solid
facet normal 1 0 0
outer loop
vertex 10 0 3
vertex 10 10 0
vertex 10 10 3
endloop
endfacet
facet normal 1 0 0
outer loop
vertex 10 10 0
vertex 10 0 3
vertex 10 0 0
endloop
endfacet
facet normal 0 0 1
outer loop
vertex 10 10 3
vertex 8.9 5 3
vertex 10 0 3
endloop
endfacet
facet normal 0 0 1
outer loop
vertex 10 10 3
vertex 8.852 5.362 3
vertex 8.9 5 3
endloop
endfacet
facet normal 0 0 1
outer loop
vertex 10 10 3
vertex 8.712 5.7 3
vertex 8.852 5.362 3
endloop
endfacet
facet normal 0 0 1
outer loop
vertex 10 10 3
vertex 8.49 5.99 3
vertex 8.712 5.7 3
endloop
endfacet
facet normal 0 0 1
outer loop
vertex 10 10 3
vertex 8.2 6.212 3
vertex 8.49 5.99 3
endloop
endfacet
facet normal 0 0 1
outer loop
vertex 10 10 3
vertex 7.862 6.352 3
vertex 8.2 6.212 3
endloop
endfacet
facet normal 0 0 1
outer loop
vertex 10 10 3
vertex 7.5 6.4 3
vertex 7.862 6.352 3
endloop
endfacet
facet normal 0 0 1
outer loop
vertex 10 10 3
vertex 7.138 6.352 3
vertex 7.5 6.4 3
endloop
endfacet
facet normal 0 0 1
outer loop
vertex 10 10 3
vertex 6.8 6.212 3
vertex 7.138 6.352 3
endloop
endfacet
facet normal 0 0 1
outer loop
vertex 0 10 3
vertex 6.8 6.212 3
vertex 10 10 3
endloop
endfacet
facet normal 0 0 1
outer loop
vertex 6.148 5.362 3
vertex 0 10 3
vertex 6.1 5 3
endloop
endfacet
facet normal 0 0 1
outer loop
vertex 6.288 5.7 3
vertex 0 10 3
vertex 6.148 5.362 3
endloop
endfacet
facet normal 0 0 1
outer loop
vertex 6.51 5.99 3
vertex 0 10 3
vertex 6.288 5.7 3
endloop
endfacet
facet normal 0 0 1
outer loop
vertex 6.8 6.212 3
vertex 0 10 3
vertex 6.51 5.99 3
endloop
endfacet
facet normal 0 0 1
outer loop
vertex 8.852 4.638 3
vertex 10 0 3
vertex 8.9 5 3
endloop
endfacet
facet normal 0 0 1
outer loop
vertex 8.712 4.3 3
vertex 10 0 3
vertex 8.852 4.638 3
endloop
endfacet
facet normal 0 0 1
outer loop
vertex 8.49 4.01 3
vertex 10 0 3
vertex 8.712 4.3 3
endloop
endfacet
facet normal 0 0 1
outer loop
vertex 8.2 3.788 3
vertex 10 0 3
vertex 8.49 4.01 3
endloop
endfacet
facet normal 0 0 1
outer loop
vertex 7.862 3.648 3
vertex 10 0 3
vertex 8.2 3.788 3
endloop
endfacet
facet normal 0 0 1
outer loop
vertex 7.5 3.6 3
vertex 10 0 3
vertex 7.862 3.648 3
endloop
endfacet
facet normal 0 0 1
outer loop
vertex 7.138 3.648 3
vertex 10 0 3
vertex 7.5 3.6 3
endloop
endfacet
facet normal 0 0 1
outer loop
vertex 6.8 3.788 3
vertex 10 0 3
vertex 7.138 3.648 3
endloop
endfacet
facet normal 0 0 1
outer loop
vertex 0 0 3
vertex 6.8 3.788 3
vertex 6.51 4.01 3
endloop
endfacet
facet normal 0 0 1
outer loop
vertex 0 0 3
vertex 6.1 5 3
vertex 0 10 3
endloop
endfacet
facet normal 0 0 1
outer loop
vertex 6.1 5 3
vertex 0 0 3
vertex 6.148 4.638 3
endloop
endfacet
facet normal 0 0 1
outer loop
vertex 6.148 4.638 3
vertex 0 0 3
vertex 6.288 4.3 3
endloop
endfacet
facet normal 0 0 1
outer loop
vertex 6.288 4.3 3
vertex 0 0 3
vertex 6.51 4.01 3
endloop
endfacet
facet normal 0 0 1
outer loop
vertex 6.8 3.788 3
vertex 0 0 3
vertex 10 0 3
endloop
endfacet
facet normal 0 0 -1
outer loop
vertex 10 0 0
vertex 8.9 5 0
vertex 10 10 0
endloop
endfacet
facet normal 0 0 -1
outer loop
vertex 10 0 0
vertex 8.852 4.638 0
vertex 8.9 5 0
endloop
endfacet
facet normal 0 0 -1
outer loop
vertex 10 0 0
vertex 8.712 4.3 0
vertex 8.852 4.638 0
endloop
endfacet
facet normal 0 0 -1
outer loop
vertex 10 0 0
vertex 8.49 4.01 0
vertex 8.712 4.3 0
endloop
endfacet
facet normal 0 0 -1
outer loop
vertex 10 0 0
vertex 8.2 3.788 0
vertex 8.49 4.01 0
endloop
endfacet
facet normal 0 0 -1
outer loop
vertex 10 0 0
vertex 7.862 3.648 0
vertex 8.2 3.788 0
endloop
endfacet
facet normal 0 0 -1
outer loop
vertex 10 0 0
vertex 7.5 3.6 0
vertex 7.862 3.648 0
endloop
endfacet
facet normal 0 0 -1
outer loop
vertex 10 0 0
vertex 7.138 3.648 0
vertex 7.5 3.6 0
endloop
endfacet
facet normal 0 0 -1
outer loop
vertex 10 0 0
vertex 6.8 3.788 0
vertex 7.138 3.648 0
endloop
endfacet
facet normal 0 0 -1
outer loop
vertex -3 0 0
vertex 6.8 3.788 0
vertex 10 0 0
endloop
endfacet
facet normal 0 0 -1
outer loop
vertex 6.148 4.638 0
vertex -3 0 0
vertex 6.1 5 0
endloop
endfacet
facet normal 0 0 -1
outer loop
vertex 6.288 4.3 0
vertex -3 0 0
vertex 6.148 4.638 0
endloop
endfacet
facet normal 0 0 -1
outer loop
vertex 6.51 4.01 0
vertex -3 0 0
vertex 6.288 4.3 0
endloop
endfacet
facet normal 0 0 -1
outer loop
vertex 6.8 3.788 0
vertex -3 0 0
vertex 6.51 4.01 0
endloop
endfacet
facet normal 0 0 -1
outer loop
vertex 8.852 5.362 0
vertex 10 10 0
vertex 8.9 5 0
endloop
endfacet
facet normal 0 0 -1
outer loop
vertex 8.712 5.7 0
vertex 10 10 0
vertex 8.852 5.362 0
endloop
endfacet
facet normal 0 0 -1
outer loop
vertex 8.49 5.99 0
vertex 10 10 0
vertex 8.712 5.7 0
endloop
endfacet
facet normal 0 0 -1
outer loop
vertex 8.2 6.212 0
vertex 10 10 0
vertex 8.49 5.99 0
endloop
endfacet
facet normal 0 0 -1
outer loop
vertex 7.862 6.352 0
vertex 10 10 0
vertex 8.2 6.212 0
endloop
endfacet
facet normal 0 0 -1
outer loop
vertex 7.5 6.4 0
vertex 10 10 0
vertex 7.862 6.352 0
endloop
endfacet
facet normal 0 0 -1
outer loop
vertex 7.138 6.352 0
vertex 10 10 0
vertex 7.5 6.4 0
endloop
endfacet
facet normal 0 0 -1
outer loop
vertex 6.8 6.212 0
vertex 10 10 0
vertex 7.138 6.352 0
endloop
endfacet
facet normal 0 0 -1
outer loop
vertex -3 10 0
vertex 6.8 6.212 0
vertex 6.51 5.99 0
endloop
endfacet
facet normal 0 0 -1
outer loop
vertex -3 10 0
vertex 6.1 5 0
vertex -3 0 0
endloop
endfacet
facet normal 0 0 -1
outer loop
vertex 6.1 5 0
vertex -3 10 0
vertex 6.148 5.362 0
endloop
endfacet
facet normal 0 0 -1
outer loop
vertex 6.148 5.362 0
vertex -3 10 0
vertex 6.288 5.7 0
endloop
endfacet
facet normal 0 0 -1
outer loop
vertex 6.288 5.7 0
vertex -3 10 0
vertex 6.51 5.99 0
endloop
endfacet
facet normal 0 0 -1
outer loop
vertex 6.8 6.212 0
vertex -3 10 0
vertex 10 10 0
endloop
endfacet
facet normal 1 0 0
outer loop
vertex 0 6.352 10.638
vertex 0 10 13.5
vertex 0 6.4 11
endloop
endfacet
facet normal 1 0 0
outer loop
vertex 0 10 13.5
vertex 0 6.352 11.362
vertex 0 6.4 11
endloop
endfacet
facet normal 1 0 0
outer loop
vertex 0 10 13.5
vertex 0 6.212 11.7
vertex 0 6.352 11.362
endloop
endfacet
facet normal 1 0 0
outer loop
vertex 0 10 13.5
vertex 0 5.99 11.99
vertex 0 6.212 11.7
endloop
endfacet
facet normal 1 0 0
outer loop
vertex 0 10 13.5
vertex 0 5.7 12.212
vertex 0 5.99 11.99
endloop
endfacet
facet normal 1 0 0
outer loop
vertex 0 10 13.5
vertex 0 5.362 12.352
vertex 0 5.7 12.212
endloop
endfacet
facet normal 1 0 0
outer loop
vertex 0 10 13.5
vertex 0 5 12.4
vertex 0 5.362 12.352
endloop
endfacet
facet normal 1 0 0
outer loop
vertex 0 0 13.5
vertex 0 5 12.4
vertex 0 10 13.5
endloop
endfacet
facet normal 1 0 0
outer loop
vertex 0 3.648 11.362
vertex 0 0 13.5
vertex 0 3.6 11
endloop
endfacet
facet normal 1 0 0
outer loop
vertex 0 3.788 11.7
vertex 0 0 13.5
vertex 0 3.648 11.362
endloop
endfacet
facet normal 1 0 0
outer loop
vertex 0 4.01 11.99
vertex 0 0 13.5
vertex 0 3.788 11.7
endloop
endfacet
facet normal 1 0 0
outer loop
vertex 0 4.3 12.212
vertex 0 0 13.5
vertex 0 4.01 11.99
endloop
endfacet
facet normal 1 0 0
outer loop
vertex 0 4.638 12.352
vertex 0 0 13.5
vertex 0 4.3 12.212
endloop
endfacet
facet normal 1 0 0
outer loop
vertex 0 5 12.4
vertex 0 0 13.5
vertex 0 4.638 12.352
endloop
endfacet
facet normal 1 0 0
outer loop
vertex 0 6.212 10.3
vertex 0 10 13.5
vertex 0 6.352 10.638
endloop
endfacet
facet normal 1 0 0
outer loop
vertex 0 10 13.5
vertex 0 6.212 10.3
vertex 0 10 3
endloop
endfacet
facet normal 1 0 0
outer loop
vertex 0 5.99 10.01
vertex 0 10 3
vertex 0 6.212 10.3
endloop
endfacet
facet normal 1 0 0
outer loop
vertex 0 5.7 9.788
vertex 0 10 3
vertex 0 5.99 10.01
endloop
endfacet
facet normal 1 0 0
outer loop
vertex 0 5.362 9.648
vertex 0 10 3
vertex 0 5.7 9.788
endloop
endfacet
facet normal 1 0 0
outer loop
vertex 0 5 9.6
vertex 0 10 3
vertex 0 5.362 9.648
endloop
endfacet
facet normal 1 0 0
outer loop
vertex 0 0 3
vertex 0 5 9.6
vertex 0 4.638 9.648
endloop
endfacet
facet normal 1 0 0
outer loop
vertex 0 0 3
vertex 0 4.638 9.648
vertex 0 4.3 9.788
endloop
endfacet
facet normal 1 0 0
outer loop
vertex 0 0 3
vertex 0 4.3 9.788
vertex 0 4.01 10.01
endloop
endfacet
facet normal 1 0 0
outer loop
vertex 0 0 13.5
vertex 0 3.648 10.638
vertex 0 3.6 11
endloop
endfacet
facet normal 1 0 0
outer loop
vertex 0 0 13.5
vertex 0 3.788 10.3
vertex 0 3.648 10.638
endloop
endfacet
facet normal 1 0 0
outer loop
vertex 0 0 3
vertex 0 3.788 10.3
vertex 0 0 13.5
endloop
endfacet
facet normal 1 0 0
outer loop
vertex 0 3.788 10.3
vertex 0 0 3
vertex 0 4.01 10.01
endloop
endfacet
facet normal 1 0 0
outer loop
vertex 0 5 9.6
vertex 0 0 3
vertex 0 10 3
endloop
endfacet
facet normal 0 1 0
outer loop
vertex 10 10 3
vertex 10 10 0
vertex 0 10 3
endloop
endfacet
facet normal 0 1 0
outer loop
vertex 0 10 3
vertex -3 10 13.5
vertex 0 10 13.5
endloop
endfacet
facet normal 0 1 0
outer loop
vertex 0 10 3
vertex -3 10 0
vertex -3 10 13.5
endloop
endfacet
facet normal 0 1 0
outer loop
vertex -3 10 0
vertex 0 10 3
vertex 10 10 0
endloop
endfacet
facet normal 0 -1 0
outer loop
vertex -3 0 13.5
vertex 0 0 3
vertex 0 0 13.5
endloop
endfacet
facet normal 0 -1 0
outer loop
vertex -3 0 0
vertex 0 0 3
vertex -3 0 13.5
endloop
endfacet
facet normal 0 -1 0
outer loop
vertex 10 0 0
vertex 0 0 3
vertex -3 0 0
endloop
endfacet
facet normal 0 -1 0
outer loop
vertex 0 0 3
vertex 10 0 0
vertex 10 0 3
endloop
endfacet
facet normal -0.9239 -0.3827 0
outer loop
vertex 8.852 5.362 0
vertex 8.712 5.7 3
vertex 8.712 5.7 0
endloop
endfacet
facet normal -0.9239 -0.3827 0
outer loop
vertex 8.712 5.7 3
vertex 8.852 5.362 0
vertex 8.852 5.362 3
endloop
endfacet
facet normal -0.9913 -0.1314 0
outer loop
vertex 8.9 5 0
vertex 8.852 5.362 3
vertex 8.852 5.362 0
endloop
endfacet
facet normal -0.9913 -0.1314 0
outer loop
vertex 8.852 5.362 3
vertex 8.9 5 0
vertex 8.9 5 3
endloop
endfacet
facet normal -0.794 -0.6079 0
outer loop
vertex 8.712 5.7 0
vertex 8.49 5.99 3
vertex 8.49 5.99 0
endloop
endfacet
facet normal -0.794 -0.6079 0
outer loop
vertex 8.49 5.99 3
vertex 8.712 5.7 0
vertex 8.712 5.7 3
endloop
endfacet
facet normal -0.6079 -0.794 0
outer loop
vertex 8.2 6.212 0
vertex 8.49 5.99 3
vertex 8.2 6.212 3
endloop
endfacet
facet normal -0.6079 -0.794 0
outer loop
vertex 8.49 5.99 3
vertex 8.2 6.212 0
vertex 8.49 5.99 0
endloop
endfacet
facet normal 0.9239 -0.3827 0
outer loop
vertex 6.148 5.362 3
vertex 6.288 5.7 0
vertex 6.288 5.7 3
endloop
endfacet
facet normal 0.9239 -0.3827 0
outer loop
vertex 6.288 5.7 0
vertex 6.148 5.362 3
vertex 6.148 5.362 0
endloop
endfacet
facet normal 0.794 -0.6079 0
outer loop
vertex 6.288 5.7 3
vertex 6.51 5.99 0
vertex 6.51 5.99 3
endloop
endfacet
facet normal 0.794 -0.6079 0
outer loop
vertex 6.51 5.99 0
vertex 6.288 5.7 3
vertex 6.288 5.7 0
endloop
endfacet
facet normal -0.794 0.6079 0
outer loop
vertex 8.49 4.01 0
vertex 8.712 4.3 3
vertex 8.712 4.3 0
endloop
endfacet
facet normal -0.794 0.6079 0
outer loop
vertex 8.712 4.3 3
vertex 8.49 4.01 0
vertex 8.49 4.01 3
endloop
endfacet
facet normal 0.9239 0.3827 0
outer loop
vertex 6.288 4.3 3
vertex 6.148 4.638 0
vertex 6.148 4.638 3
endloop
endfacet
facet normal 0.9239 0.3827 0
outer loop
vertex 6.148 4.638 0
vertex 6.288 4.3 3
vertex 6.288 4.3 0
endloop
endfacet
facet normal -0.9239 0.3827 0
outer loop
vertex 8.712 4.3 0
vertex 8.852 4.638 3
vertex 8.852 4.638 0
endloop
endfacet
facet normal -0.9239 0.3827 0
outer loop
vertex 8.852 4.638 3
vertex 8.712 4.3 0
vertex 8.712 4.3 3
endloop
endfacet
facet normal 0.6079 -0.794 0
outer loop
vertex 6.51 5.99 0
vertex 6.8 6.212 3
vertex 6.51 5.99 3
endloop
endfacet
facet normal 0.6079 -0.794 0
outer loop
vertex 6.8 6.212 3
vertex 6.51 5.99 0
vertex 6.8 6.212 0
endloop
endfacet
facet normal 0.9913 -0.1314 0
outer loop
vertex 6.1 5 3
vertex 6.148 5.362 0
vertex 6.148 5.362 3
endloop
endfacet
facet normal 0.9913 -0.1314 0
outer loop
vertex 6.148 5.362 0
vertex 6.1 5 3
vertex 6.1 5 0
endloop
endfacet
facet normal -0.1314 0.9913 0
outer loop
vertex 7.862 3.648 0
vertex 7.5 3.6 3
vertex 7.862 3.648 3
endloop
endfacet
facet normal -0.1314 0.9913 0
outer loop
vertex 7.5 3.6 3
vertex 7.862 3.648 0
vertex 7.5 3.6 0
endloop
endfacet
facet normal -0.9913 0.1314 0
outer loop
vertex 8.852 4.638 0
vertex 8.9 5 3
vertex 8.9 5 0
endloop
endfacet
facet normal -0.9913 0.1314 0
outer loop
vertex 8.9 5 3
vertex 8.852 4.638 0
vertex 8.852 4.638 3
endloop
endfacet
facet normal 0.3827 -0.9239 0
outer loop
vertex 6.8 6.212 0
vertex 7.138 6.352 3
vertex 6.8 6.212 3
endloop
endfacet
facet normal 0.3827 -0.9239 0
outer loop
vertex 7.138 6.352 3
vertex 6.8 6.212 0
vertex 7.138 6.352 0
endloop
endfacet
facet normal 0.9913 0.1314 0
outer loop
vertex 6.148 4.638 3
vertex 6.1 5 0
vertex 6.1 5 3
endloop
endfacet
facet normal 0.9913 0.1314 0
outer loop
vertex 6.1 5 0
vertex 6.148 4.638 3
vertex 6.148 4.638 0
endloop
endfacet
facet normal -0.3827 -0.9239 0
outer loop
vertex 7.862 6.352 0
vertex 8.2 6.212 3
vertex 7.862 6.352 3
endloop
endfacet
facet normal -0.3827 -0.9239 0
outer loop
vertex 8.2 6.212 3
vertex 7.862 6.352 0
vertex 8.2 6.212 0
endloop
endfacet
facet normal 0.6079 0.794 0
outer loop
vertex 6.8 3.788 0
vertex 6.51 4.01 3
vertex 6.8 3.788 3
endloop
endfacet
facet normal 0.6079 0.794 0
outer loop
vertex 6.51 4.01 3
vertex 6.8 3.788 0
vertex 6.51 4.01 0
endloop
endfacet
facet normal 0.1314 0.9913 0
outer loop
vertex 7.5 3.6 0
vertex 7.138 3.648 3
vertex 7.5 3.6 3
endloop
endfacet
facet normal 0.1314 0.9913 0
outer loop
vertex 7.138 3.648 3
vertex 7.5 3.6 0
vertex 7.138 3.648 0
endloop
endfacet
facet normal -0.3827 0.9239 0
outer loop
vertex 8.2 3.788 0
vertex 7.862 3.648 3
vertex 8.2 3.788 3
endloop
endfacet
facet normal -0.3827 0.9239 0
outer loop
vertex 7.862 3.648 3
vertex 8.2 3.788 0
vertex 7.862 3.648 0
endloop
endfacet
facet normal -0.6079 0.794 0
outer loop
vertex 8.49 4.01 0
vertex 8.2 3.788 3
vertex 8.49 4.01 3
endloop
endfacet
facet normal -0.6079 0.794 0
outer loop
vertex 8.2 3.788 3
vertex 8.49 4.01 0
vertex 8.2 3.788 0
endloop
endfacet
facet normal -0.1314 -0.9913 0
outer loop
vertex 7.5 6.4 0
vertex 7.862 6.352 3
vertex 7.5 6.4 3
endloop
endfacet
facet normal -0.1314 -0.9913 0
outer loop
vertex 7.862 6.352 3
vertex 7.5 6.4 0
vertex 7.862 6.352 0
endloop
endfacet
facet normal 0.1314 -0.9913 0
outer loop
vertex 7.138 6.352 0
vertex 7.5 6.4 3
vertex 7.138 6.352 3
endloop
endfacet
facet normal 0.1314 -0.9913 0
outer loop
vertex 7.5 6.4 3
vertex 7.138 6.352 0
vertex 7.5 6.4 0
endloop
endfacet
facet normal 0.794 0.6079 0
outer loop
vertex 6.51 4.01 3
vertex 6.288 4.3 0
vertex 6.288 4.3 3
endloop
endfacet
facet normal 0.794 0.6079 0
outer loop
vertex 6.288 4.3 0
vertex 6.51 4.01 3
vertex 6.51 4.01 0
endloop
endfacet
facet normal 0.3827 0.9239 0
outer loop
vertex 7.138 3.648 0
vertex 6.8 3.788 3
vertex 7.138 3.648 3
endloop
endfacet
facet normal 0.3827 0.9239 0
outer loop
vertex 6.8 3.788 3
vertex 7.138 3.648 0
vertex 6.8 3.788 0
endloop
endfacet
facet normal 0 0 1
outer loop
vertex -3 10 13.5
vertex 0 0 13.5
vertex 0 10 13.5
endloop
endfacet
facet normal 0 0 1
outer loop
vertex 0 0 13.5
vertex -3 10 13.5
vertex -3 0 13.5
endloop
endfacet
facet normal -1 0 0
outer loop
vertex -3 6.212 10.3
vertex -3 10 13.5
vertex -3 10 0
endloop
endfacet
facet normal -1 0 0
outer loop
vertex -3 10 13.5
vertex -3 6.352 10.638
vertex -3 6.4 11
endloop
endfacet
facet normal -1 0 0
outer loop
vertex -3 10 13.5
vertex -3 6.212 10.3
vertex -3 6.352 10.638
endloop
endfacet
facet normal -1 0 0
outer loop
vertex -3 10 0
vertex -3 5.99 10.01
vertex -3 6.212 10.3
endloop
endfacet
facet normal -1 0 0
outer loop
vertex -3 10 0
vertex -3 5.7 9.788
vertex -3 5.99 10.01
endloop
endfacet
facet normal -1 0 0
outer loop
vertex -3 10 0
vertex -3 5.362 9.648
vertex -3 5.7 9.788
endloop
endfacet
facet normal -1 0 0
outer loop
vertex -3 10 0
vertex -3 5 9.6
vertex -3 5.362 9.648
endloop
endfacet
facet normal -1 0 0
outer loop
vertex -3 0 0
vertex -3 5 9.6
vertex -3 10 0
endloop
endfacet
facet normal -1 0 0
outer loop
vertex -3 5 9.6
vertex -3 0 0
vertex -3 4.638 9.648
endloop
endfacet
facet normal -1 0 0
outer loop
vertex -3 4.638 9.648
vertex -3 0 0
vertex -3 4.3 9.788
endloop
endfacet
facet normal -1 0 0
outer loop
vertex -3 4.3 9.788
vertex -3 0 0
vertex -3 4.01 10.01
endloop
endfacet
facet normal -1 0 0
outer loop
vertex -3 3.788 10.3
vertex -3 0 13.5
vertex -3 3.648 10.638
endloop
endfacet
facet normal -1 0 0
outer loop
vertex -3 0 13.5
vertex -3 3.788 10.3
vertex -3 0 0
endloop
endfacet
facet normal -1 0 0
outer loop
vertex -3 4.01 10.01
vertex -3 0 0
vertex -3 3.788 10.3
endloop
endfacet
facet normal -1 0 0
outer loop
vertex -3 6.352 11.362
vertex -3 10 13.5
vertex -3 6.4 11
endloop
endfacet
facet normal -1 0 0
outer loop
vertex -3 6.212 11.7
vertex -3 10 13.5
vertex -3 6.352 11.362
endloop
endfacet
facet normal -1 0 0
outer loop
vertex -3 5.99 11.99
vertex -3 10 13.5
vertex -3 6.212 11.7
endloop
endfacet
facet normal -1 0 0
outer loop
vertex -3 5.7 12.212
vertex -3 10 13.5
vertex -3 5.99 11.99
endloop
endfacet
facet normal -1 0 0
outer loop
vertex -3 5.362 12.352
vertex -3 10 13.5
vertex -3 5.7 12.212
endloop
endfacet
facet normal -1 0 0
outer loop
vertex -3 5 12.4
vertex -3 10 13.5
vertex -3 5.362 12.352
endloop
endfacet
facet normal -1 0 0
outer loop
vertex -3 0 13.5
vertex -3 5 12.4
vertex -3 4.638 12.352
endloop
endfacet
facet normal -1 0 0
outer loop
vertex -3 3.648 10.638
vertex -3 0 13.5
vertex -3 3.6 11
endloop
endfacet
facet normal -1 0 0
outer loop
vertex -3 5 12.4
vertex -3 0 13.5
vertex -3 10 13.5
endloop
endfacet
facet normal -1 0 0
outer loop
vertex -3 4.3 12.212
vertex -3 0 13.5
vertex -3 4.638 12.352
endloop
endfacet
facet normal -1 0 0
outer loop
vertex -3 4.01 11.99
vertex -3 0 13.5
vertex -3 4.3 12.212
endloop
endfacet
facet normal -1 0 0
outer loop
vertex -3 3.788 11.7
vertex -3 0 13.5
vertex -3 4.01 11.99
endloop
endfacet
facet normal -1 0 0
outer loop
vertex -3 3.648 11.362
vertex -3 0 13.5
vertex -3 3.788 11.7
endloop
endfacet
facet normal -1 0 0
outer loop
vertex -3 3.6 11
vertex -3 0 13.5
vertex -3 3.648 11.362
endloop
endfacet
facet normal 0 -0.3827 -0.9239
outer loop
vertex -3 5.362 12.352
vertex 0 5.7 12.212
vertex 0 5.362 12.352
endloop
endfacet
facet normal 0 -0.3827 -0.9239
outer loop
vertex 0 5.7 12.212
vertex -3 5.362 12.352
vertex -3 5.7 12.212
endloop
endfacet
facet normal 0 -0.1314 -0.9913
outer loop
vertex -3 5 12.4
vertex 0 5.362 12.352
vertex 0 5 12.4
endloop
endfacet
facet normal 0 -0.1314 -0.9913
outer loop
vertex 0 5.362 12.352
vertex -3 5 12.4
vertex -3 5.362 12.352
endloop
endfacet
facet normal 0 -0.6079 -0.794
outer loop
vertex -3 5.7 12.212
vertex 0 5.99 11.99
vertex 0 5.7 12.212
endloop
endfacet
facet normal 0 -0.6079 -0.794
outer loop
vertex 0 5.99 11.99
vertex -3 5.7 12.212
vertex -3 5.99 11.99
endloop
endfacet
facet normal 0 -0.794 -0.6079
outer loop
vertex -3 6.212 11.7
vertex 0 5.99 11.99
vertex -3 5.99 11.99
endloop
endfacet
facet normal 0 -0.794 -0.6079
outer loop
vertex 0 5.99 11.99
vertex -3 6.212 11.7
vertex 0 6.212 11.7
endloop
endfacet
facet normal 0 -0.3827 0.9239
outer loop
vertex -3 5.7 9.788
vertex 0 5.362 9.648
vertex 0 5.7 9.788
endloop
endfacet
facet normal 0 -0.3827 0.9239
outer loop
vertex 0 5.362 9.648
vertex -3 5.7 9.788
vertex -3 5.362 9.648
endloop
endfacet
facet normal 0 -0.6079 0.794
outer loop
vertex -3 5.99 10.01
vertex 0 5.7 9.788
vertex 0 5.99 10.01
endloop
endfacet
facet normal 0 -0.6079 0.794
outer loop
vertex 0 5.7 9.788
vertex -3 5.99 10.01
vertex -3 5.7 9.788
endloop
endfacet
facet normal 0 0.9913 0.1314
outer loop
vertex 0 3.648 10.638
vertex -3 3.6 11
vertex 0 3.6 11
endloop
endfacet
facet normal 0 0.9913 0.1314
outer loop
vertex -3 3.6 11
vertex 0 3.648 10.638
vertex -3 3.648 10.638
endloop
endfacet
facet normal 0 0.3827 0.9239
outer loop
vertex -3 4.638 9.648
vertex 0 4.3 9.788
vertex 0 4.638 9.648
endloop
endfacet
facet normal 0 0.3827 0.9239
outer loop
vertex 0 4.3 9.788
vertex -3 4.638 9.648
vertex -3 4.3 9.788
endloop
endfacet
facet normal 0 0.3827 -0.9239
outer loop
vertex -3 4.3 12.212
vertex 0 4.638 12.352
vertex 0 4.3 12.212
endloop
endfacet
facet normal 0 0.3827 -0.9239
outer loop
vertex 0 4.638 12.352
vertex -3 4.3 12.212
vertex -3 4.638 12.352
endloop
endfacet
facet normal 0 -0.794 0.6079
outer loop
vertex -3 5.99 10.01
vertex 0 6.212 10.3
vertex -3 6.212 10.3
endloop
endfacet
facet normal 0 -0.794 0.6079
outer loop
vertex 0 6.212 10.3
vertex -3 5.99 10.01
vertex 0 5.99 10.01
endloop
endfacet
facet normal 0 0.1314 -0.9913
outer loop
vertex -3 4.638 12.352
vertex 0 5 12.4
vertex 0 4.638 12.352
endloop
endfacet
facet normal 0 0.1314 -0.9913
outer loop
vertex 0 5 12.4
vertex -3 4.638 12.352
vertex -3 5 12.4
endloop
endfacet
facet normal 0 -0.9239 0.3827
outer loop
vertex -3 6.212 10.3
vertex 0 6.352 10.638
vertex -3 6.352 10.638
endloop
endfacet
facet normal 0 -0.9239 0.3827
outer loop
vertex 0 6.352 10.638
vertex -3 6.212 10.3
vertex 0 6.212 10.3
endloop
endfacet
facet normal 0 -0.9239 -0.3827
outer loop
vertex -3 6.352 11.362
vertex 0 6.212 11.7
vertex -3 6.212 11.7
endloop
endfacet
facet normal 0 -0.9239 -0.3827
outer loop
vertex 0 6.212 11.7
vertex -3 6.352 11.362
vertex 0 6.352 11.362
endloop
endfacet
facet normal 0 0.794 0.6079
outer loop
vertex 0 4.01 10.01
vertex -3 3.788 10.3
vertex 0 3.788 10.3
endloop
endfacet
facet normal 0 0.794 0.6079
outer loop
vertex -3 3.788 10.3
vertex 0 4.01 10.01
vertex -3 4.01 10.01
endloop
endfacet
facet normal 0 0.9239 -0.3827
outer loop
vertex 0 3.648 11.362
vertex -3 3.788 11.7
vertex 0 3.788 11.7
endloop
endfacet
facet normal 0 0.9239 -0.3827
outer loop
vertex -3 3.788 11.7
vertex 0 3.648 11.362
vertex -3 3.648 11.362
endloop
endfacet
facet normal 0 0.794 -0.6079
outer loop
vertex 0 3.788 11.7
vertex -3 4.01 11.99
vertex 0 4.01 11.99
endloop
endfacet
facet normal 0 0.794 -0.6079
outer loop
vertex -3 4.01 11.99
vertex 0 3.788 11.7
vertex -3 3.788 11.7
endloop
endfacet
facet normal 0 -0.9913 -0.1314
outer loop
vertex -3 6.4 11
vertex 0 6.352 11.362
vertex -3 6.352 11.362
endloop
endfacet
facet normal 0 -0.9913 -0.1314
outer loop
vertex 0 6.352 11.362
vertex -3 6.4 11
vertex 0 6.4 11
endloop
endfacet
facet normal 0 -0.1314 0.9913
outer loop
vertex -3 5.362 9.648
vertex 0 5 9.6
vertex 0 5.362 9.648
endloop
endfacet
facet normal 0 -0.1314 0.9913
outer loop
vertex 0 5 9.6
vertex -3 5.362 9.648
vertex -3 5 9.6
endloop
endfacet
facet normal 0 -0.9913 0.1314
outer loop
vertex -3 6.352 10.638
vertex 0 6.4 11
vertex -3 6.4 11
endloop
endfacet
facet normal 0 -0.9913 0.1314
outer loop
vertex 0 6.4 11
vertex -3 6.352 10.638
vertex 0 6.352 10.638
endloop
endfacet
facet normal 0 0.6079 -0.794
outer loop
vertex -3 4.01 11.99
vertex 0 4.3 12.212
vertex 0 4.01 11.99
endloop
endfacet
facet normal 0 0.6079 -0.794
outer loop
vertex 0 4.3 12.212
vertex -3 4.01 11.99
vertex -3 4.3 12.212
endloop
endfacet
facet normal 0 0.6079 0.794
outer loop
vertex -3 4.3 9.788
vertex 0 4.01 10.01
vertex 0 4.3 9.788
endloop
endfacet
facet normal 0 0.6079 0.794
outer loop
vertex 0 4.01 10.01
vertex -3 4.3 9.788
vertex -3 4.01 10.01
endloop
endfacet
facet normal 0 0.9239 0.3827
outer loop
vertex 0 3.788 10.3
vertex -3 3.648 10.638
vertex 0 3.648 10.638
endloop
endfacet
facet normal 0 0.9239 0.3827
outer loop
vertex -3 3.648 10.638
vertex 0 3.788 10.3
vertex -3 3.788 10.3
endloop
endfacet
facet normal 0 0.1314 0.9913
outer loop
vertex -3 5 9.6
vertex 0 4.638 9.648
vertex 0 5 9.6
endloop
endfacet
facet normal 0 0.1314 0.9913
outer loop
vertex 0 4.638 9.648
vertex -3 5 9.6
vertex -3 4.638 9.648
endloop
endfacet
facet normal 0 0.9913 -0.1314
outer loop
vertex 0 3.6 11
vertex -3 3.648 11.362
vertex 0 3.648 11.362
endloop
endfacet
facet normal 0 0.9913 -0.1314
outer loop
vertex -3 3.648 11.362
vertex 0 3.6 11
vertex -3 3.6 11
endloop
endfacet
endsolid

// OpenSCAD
THICKNESS = 3;
HOLE_RADIUS = 1.4;
FACETS=24;


difference(){
    cube([10, 10, THICKNESS]);
    translate([10.5-THICKNESS, 5, -0.1]){
        cylinder(r=HOLE_RADIUS, h=THICKNESS + 0.2, center=false, $fn=FACETS);
    }
}
rotate([0,-90,0]){
    difference(){
        cube([10.5 + THICKNESS, 10, THICKNESS]);
        translate([11, 5, -0.1]){
            cylinder(r=HOLE_RADIUS, h=THICKNESS + 0.2, center=false, $fn=FACETS);
        }
    }
}
